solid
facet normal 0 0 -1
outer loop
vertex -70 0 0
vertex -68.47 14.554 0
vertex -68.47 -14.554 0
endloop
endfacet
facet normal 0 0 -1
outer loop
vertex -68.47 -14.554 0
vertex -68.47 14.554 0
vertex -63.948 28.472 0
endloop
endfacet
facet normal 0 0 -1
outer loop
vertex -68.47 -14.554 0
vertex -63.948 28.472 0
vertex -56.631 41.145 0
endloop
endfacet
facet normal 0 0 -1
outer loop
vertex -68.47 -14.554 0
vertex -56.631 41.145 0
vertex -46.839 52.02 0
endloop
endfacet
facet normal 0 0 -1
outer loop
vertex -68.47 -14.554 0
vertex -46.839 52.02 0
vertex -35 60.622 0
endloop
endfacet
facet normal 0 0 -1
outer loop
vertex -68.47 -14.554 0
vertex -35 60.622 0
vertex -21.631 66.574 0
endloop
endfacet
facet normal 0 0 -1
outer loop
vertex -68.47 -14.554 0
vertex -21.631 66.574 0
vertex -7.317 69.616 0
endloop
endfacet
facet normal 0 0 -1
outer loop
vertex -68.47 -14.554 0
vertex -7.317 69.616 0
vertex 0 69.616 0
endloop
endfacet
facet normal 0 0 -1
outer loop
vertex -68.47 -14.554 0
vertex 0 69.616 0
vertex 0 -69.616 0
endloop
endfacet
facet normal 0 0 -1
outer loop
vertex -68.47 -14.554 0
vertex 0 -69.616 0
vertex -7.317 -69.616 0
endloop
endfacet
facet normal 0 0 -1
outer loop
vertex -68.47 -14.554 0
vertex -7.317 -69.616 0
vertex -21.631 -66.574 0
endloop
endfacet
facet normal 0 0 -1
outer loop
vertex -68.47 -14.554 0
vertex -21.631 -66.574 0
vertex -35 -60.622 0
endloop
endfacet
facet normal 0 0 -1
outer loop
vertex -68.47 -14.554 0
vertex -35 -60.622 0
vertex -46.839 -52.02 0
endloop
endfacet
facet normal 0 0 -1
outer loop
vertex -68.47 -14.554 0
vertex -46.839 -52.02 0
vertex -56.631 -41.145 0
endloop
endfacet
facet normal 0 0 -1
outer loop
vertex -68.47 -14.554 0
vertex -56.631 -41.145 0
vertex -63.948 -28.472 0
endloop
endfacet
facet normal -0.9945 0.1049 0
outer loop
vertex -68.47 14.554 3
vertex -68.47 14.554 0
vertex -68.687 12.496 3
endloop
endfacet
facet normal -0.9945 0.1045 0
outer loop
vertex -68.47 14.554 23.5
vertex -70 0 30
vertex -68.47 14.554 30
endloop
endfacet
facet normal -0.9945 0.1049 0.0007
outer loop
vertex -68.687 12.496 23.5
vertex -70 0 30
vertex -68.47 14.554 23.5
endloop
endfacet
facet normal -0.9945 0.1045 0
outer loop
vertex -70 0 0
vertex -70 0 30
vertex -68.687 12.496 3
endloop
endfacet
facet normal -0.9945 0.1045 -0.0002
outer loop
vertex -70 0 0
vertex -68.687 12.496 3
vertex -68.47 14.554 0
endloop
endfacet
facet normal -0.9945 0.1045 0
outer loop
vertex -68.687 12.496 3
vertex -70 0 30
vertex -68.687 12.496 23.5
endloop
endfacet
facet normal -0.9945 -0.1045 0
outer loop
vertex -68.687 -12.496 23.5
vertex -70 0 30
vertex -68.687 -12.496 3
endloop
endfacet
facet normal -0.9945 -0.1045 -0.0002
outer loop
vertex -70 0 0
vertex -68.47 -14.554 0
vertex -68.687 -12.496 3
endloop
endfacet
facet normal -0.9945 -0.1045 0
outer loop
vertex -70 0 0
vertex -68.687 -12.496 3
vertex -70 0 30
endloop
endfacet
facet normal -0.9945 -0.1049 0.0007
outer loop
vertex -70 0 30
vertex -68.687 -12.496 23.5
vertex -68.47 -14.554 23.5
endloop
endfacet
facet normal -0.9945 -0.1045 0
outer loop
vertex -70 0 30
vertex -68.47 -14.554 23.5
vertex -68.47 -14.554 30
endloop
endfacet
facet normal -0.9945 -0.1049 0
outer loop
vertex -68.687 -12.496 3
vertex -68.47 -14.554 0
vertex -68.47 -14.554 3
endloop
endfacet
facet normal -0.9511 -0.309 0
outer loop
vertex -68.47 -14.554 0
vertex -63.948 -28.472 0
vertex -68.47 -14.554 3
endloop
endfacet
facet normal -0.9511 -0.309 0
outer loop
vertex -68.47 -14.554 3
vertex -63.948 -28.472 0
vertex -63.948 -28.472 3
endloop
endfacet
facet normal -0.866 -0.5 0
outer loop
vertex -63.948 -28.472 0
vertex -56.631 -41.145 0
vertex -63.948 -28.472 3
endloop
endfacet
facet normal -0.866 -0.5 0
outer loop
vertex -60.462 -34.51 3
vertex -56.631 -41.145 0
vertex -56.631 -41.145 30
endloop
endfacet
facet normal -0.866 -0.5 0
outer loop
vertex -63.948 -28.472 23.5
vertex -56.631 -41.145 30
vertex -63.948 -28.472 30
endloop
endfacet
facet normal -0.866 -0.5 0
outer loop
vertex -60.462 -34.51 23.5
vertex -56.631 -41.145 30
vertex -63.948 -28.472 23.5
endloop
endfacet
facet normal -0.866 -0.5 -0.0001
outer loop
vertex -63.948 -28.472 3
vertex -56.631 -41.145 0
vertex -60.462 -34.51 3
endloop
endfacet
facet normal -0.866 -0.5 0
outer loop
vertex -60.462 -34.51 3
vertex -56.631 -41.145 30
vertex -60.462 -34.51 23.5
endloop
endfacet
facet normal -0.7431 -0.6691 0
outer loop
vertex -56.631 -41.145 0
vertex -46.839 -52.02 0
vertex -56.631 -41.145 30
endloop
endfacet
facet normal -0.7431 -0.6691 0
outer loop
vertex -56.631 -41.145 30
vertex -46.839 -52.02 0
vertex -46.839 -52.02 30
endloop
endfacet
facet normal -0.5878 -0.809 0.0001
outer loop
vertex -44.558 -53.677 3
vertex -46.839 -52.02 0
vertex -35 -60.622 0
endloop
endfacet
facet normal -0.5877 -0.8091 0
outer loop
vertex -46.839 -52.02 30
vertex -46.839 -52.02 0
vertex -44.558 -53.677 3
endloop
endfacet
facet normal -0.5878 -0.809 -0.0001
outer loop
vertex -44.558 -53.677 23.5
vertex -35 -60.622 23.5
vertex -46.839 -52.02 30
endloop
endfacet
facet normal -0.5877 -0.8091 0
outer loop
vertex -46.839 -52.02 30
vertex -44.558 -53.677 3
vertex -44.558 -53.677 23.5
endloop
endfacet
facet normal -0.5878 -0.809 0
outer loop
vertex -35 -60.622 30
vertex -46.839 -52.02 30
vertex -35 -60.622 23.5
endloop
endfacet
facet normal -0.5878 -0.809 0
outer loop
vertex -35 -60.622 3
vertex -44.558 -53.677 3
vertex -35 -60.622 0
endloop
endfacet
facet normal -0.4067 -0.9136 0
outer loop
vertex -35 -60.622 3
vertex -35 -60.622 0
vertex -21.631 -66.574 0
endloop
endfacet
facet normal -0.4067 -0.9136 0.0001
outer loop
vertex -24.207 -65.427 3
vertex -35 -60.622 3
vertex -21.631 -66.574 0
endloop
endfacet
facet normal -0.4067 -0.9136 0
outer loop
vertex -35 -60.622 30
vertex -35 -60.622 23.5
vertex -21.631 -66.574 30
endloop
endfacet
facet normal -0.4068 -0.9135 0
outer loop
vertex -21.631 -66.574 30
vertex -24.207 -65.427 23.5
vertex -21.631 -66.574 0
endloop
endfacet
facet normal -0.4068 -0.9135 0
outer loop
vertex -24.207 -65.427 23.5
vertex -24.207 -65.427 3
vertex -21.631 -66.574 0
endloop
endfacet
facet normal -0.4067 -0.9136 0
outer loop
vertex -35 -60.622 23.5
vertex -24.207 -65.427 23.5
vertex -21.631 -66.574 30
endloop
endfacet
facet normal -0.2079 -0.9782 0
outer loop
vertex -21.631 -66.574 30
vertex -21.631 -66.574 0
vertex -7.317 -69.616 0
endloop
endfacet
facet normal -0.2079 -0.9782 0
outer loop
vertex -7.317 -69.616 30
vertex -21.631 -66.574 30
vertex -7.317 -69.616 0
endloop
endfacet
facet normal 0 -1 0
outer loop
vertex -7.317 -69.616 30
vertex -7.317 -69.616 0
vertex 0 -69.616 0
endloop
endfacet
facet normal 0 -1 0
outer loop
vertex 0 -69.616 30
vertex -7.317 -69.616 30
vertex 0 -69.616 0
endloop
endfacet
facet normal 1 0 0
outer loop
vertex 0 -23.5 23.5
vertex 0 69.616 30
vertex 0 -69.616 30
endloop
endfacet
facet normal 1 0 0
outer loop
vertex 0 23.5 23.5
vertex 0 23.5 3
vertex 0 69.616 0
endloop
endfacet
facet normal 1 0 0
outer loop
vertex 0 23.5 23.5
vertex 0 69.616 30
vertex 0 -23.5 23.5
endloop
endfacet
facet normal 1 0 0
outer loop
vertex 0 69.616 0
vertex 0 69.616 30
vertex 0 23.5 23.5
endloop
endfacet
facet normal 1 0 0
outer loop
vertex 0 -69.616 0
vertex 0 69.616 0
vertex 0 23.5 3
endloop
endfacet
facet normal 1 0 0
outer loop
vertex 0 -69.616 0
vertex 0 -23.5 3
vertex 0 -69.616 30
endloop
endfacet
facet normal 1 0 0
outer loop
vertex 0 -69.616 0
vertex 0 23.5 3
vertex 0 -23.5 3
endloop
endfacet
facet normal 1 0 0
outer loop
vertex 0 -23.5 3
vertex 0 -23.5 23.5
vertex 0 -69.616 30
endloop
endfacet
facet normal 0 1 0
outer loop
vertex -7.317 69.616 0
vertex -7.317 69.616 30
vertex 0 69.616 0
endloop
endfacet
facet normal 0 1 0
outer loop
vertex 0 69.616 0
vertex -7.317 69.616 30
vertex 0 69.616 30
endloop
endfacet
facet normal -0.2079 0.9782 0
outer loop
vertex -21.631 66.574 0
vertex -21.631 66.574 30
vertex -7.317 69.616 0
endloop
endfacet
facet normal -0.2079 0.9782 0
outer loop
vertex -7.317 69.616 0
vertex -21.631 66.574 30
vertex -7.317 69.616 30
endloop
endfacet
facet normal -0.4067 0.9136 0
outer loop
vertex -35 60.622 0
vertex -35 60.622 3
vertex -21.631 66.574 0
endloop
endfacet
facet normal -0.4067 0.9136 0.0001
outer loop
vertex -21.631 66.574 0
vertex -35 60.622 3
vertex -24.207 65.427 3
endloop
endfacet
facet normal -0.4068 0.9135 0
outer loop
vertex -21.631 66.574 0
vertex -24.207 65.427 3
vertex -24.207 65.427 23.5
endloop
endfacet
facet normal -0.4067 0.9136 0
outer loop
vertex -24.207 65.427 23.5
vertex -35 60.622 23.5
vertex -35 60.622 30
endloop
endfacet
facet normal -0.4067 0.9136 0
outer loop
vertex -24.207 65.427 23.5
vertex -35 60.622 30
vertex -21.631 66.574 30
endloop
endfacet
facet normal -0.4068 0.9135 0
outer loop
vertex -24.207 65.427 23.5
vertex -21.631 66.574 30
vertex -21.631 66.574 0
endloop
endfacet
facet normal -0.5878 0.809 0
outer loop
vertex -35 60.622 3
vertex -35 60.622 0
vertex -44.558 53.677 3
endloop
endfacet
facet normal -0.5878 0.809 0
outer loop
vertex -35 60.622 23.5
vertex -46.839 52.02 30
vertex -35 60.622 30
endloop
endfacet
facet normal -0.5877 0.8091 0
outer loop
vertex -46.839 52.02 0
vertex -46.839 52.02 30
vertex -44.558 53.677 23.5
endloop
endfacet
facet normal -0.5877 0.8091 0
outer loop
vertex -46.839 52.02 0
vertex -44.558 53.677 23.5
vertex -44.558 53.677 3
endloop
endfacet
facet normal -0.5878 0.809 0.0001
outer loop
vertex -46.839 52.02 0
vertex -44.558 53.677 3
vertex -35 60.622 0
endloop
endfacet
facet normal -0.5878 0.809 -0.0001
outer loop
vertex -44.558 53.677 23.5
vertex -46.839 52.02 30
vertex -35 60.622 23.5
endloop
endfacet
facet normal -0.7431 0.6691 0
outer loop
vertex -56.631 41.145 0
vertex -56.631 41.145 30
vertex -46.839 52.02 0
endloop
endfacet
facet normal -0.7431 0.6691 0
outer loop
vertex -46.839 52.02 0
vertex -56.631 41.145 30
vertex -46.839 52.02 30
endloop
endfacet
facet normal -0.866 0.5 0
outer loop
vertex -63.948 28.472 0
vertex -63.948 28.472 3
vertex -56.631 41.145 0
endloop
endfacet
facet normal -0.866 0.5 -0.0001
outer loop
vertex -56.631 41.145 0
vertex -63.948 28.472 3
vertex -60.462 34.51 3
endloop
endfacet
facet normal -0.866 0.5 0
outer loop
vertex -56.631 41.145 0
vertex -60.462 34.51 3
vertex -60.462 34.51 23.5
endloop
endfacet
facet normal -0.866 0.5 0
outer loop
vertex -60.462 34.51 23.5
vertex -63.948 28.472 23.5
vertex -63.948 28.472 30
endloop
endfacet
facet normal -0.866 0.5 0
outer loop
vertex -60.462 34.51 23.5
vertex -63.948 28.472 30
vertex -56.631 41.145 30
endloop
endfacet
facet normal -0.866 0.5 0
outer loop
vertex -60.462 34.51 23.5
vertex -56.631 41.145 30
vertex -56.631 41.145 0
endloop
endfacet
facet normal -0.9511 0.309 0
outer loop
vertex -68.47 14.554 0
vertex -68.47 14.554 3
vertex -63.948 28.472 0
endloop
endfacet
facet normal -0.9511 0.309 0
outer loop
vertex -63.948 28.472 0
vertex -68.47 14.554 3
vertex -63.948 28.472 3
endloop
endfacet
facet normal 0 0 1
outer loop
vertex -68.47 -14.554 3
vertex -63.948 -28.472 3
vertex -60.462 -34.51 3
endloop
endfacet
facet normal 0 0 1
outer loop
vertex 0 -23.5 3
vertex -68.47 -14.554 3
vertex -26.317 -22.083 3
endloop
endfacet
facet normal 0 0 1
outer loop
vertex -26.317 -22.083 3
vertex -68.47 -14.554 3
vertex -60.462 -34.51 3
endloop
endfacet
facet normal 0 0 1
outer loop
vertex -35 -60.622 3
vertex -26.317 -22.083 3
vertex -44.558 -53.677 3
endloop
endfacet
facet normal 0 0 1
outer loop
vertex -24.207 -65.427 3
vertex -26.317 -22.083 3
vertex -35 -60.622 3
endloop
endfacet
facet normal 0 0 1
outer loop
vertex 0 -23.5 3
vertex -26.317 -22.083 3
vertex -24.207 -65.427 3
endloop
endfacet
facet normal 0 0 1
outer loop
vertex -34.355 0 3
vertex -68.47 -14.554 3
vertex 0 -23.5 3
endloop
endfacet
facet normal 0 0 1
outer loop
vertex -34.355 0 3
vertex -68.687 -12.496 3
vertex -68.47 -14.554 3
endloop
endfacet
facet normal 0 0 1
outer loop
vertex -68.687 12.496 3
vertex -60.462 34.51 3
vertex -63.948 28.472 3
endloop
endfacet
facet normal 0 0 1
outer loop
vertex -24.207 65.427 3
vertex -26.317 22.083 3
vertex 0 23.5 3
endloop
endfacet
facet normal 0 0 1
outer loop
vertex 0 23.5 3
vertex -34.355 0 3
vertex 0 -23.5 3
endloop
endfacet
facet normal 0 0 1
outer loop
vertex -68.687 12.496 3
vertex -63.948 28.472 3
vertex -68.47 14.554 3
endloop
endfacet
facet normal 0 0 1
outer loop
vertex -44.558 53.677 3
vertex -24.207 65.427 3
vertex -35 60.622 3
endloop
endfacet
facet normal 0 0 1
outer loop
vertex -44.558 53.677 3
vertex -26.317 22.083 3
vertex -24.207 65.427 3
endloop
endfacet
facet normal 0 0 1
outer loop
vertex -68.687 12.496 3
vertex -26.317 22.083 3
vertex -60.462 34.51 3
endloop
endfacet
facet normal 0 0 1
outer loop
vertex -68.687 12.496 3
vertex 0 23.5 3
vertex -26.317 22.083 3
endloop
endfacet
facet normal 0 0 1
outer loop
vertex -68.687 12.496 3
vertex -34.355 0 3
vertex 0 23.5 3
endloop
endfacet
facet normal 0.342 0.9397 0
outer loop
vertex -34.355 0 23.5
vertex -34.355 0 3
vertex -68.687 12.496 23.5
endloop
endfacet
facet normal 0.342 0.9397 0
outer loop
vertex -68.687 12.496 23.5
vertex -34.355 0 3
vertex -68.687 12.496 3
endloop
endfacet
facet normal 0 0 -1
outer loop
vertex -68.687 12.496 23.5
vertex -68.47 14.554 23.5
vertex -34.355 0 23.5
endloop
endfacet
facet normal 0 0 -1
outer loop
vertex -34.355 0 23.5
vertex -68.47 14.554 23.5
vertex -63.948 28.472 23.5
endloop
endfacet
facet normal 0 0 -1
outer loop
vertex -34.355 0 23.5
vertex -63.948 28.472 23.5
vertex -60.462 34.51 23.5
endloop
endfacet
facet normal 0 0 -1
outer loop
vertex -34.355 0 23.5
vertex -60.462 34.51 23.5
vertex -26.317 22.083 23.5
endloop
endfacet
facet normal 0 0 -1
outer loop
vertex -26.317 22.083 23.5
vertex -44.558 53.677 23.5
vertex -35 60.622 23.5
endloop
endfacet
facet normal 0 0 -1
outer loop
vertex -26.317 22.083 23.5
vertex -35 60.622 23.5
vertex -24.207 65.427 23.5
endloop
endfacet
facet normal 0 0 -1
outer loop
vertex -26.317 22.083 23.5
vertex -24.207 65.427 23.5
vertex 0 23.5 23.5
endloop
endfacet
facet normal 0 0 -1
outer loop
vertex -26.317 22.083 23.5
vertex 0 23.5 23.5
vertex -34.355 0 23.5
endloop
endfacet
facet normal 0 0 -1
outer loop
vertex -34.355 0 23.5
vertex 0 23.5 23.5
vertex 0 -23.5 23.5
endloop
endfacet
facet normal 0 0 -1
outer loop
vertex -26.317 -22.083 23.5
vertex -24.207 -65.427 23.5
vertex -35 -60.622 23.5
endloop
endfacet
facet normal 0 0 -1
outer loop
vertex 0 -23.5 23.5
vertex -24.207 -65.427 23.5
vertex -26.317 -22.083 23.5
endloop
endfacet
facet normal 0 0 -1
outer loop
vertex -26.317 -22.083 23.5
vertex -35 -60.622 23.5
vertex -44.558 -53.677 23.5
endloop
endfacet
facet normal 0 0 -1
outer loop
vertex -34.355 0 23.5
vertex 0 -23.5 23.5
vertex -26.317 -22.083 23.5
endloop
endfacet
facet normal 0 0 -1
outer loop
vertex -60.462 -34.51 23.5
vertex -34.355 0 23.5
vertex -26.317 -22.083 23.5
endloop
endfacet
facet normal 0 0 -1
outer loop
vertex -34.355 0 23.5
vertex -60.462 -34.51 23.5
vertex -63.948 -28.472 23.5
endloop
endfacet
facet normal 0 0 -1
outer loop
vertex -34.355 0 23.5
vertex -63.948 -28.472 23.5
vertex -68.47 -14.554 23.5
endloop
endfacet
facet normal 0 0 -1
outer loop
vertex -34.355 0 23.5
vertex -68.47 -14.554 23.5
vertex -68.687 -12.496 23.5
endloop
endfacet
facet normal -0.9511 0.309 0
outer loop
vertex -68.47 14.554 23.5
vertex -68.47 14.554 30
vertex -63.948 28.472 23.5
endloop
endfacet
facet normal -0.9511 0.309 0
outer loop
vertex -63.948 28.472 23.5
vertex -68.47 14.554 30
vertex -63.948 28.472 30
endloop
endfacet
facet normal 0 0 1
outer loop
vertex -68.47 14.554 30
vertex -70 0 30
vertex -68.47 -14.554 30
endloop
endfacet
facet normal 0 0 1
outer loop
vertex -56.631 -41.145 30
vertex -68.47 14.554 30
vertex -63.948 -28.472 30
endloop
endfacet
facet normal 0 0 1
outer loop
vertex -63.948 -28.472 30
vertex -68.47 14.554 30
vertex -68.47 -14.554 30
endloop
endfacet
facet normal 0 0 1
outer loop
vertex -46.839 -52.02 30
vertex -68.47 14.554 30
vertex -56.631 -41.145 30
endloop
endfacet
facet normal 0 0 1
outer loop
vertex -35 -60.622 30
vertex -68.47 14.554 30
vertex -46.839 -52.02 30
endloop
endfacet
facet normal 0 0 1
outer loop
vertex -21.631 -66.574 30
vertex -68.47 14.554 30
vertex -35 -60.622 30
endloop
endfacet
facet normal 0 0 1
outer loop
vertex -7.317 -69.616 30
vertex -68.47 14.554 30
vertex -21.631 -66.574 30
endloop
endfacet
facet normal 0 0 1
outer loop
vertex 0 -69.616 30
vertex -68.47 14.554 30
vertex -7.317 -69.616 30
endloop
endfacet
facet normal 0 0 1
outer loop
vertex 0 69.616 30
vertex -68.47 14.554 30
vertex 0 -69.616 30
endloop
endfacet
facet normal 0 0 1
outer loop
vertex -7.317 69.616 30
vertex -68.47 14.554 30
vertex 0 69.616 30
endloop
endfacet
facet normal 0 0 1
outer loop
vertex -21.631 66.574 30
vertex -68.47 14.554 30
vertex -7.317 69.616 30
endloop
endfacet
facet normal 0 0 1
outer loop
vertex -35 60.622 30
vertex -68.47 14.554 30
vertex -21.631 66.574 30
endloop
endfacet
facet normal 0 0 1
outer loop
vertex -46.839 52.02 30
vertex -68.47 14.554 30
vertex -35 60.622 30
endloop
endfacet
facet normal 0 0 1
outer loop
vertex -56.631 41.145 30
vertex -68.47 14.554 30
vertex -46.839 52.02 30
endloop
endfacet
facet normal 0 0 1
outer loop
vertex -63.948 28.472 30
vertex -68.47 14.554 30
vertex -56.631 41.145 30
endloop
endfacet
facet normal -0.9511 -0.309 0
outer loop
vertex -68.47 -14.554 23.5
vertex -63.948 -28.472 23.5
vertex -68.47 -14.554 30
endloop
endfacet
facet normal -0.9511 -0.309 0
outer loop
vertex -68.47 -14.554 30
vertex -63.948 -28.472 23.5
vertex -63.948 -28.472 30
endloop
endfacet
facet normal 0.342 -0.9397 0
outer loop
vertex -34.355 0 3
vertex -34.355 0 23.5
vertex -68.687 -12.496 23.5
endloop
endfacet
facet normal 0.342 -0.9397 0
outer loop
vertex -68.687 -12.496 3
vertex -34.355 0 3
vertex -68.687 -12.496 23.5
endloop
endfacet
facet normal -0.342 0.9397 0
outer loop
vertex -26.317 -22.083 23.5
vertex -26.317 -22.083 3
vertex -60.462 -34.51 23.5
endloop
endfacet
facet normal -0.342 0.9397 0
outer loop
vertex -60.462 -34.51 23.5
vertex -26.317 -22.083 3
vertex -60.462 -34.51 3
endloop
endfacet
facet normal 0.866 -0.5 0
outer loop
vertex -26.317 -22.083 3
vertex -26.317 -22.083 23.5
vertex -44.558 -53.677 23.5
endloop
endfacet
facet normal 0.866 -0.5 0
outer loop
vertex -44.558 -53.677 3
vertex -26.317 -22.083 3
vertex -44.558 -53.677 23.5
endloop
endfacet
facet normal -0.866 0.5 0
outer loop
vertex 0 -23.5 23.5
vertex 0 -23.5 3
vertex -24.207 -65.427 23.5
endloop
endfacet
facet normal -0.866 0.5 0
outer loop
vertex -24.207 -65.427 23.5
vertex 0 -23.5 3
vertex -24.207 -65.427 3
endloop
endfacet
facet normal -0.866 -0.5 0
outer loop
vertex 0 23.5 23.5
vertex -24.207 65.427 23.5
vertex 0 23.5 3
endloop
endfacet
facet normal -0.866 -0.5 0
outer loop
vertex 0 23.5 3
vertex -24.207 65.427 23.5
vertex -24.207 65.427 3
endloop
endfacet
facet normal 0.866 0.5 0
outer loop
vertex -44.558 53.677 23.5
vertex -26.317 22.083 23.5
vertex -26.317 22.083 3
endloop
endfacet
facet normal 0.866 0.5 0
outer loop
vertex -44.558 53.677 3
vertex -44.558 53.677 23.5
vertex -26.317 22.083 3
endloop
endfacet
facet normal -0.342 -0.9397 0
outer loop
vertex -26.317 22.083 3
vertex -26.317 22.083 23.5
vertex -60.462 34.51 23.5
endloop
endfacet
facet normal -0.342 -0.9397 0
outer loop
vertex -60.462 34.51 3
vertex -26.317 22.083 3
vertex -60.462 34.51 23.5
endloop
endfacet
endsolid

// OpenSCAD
difference(){
	cylinder(h = 30, r=70);
	translate([0,-70,0])cube(size = [70,140,70]);
	rotate([0,0,30])translate([-11.75,0,3])cube(size = [23.5,70,20.5]);
	rotate([0,0,70])translate([-11.75,0,3])cube(size = [23.5,70,20.5]);
	rotate([0,0,110])translate([-11.75,0,3])cube(size = [23.5,70,20.5]);
	rotate([0,0,150])translate([-11.75,0,3])cube(size = [23.5,70,20.5]);
}
